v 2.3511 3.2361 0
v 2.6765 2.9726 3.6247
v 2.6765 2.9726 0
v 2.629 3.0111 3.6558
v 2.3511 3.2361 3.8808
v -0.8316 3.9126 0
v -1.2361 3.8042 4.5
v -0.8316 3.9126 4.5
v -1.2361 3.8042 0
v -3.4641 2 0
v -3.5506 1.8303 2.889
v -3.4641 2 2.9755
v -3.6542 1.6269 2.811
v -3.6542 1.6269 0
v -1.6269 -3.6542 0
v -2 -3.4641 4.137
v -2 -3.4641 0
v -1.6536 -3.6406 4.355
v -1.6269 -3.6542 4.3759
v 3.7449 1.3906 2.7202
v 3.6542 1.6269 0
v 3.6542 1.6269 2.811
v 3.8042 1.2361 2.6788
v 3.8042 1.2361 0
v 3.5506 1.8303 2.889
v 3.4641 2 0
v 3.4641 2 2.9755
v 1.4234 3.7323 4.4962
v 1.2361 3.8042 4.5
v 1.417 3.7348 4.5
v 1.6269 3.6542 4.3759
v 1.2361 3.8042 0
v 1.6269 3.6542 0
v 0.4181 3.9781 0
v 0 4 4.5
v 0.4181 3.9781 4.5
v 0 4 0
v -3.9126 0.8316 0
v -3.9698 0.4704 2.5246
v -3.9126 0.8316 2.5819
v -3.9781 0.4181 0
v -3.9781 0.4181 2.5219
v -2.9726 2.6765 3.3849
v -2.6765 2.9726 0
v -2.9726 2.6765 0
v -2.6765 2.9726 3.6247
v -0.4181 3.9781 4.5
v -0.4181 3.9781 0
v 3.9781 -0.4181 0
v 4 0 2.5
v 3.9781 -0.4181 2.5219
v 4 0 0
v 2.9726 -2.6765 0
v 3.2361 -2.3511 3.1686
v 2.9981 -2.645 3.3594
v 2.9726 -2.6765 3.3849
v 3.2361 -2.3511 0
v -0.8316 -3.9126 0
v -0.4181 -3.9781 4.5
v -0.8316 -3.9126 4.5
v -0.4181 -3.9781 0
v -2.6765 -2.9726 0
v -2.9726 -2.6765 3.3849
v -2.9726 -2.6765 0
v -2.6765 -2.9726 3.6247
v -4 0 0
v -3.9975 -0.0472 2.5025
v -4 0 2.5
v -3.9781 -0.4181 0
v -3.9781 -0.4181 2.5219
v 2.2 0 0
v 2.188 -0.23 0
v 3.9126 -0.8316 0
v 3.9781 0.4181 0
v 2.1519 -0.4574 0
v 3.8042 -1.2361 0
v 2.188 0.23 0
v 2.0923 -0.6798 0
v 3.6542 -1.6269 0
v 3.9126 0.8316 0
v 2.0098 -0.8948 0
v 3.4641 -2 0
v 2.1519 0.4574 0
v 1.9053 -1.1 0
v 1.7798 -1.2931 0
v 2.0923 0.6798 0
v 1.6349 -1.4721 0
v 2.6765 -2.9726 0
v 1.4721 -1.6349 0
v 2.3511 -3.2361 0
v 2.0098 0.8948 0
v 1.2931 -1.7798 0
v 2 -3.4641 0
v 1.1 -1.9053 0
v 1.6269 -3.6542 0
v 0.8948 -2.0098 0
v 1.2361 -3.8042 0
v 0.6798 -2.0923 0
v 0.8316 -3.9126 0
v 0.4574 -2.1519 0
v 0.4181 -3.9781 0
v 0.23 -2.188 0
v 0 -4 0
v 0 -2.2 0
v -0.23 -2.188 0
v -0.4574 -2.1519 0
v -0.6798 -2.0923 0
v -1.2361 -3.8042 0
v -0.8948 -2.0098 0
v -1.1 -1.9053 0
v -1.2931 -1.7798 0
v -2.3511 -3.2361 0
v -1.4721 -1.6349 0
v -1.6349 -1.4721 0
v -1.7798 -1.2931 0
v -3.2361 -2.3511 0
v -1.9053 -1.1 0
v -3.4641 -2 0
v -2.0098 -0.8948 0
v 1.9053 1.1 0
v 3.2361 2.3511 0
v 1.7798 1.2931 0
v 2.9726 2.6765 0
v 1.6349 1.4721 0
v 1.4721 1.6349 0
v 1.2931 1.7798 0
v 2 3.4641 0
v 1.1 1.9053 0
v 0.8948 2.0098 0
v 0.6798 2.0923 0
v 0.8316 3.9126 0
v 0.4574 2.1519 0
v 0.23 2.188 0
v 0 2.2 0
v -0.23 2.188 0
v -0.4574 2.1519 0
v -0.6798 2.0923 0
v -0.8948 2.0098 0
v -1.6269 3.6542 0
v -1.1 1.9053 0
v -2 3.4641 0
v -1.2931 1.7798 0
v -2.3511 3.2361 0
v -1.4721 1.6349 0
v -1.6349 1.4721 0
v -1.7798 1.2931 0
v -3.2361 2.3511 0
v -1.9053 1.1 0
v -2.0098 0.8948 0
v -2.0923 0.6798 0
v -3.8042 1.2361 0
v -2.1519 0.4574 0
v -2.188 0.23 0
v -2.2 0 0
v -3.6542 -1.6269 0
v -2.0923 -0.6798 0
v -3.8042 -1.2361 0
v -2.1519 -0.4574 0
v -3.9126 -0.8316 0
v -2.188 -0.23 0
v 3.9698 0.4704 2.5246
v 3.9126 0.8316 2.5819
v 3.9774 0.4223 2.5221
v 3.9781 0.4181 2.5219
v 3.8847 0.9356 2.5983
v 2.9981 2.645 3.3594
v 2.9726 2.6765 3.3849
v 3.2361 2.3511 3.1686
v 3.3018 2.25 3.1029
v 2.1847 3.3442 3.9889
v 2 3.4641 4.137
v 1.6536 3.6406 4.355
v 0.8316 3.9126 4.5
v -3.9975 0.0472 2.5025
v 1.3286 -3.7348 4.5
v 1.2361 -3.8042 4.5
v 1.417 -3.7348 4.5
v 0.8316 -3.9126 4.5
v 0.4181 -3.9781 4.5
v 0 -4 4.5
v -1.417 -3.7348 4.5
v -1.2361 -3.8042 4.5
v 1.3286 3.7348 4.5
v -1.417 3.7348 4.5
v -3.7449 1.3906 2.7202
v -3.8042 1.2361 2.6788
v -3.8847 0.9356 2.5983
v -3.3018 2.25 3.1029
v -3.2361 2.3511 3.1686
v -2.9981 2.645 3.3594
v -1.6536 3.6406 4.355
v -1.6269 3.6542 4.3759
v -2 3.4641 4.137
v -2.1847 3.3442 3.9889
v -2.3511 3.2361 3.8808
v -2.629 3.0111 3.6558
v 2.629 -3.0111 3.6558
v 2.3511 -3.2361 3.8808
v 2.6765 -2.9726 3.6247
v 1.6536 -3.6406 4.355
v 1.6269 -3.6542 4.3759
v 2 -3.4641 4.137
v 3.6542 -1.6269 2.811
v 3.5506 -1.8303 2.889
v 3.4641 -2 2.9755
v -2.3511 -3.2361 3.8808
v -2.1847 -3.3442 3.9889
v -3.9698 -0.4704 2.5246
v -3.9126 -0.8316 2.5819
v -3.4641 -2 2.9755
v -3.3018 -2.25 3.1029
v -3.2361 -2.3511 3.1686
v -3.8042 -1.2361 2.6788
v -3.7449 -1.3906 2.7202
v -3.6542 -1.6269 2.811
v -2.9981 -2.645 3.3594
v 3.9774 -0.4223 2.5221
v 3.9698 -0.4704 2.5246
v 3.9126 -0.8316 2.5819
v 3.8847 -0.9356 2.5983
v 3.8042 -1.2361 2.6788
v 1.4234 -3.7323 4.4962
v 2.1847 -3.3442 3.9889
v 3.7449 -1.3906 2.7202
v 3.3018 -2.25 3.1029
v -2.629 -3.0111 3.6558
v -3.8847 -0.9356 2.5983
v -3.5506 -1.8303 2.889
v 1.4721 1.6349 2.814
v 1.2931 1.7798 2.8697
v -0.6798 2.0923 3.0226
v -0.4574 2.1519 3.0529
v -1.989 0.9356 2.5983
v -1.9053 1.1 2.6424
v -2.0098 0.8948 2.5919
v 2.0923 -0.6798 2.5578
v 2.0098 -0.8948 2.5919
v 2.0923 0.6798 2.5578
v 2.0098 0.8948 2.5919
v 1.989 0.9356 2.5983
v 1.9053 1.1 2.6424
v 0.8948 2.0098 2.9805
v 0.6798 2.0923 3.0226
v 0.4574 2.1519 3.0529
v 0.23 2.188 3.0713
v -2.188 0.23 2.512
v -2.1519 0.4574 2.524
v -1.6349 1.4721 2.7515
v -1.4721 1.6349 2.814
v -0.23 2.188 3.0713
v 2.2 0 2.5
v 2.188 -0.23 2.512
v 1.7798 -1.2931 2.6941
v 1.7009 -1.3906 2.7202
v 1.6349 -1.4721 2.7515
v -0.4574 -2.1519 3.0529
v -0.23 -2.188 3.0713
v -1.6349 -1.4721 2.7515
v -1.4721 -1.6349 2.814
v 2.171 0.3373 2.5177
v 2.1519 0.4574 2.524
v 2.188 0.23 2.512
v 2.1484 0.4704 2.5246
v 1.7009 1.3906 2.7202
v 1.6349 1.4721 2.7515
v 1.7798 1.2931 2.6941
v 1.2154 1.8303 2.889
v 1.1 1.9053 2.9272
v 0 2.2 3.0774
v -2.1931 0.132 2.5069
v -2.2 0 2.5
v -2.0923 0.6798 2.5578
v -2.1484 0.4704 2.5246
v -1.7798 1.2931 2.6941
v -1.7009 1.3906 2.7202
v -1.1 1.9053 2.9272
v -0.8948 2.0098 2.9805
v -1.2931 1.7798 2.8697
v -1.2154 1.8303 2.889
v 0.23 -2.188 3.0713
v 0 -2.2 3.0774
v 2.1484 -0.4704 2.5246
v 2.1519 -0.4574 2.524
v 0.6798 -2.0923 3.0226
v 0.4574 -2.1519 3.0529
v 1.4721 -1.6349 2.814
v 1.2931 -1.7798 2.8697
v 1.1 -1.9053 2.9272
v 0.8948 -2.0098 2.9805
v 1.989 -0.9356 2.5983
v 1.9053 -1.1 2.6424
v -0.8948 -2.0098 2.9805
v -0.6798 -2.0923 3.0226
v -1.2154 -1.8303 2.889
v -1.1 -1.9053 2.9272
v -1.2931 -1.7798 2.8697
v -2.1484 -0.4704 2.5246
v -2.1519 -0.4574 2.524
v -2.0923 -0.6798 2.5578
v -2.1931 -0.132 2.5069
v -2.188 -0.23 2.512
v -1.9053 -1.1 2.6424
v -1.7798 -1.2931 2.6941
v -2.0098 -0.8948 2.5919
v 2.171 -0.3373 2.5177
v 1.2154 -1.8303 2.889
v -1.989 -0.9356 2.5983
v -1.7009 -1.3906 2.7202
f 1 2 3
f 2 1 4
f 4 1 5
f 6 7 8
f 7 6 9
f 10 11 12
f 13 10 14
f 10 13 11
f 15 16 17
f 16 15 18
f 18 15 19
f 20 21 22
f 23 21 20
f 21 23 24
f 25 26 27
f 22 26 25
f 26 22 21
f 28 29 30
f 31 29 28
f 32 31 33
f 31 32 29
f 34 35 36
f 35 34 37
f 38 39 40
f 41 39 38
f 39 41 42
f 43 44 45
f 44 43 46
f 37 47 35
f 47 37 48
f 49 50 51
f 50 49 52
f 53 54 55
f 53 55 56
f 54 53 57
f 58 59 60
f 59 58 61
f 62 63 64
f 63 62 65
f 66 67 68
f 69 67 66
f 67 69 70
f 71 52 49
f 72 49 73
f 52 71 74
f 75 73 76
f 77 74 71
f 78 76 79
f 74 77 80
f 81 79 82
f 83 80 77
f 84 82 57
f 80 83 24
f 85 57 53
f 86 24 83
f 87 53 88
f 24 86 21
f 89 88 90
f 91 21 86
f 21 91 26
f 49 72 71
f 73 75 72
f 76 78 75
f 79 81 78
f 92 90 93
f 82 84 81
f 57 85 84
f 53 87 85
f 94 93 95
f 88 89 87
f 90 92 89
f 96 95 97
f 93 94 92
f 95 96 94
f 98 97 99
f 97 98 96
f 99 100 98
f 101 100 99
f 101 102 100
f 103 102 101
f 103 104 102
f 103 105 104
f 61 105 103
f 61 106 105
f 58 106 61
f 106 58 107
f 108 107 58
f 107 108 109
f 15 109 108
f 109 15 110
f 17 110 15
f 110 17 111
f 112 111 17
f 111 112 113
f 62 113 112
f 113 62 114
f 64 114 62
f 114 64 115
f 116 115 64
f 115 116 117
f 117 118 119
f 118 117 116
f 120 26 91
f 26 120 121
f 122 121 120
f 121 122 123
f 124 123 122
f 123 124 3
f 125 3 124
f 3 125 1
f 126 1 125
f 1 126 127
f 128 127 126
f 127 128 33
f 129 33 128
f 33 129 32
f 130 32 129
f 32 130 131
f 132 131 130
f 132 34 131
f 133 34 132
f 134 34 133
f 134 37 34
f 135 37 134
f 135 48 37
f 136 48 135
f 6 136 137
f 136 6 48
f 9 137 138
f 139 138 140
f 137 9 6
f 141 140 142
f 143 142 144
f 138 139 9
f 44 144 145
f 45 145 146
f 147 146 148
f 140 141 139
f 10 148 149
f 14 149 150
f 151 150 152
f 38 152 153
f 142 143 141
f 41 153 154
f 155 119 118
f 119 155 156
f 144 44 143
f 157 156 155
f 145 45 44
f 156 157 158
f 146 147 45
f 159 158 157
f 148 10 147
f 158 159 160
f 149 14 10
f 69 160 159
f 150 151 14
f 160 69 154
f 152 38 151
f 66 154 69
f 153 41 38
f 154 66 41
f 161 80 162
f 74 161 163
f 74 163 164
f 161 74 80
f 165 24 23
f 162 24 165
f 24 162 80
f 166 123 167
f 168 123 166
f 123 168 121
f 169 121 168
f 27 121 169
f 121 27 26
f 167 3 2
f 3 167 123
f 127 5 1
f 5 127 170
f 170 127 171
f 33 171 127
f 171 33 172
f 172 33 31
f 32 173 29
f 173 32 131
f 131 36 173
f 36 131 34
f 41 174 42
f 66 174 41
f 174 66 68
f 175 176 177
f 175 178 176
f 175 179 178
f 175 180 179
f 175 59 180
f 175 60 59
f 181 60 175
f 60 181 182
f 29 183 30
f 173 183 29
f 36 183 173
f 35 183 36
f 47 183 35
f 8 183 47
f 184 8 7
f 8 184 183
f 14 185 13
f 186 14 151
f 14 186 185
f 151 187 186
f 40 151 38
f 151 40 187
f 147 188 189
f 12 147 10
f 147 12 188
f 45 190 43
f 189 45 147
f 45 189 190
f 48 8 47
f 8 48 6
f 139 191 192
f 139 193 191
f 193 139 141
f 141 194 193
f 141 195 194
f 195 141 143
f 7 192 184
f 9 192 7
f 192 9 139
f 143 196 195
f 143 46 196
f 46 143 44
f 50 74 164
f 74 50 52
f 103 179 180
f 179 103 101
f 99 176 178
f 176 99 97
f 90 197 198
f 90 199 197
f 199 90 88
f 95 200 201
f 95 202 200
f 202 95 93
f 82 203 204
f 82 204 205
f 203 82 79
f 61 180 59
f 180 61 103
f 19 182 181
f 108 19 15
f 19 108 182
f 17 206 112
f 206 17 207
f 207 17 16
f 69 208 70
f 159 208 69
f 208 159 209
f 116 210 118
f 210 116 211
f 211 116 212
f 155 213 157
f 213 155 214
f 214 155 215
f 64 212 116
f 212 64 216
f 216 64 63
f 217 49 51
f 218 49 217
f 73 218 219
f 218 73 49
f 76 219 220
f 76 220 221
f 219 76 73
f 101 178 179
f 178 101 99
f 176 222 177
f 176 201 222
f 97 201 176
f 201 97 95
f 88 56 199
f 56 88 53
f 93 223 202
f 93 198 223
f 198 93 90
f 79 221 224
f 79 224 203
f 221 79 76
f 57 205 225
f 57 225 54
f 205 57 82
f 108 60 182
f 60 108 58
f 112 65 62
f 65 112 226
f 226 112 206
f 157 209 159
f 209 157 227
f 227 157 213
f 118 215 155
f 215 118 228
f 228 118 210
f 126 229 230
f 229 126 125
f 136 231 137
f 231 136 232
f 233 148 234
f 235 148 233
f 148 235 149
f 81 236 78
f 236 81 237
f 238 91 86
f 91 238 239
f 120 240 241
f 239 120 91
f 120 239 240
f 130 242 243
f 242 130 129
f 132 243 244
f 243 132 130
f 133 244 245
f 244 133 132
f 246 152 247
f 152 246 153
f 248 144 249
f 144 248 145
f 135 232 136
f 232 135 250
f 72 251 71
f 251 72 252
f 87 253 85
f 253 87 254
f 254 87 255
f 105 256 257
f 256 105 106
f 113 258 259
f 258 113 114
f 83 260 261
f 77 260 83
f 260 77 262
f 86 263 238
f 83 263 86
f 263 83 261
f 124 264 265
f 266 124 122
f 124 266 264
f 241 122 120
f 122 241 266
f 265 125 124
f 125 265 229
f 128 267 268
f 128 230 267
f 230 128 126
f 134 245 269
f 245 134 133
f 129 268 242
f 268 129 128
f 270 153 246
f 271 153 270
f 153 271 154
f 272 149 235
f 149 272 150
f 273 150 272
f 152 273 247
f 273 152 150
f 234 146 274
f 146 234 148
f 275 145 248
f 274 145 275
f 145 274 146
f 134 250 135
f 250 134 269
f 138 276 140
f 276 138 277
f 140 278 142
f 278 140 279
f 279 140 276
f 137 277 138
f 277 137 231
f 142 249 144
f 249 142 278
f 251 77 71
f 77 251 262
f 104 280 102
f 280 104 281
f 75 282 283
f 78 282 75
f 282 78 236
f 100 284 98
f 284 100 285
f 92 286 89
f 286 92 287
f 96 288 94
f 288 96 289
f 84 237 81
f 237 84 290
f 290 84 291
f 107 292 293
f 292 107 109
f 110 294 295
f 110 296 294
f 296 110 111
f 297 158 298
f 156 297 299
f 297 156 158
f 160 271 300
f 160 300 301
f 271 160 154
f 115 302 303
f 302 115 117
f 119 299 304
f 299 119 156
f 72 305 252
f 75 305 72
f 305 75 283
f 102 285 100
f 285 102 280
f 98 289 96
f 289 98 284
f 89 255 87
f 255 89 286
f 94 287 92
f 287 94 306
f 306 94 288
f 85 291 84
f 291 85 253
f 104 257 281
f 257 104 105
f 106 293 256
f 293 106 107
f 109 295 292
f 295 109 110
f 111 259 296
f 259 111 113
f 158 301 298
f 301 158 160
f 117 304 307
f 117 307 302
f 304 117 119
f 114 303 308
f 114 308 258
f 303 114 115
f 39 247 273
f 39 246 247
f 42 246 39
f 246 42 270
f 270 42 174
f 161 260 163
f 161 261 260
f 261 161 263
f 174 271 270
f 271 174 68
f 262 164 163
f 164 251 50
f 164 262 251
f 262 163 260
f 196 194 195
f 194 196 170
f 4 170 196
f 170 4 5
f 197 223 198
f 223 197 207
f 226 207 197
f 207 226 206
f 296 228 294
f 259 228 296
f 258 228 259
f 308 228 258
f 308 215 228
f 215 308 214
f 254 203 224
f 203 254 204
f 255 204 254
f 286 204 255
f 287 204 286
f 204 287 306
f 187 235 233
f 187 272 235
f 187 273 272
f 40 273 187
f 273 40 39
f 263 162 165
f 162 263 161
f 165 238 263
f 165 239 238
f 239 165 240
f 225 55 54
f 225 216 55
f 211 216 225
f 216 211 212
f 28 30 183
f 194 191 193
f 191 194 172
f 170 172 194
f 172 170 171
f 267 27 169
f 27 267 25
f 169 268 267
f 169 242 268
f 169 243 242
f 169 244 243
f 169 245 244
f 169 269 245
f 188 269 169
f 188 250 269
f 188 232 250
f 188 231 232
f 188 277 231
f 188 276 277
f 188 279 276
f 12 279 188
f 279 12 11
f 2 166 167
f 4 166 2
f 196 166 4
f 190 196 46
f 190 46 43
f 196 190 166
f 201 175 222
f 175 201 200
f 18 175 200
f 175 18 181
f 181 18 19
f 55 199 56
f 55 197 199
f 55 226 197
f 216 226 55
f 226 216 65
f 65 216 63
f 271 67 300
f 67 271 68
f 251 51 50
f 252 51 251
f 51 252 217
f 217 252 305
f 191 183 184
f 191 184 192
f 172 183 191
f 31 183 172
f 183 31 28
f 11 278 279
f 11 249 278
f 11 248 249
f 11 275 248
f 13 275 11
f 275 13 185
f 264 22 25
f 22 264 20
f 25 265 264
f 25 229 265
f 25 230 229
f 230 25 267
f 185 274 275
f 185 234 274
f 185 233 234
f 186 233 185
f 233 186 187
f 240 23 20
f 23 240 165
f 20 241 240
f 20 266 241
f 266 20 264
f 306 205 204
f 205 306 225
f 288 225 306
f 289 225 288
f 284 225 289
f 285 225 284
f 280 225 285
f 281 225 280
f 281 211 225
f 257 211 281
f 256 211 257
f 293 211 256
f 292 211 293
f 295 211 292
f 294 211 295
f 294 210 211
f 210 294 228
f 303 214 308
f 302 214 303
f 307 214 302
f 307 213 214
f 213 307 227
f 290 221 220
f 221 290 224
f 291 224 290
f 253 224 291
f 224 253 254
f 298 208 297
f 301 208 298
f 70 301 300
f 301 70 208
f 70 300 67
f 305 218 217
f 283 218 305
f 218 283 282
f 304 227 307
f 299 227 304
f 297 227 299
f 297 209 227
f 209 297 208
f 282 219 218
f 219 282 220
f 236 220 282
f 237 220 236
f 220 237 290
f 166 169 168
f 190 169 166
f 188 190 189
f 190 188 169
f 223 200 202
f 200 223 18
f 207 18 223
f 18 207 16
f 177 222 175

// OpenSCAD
$fn=60;


difference (){
    cylinder (4.5,4,4);
    translate ([0,0,-1])
    cylinder (8,2.2,2.2);
    rotate([0,90,0])
    translate ([-7,0,-5])
    cylinder (10,4.5,4.5);
};
